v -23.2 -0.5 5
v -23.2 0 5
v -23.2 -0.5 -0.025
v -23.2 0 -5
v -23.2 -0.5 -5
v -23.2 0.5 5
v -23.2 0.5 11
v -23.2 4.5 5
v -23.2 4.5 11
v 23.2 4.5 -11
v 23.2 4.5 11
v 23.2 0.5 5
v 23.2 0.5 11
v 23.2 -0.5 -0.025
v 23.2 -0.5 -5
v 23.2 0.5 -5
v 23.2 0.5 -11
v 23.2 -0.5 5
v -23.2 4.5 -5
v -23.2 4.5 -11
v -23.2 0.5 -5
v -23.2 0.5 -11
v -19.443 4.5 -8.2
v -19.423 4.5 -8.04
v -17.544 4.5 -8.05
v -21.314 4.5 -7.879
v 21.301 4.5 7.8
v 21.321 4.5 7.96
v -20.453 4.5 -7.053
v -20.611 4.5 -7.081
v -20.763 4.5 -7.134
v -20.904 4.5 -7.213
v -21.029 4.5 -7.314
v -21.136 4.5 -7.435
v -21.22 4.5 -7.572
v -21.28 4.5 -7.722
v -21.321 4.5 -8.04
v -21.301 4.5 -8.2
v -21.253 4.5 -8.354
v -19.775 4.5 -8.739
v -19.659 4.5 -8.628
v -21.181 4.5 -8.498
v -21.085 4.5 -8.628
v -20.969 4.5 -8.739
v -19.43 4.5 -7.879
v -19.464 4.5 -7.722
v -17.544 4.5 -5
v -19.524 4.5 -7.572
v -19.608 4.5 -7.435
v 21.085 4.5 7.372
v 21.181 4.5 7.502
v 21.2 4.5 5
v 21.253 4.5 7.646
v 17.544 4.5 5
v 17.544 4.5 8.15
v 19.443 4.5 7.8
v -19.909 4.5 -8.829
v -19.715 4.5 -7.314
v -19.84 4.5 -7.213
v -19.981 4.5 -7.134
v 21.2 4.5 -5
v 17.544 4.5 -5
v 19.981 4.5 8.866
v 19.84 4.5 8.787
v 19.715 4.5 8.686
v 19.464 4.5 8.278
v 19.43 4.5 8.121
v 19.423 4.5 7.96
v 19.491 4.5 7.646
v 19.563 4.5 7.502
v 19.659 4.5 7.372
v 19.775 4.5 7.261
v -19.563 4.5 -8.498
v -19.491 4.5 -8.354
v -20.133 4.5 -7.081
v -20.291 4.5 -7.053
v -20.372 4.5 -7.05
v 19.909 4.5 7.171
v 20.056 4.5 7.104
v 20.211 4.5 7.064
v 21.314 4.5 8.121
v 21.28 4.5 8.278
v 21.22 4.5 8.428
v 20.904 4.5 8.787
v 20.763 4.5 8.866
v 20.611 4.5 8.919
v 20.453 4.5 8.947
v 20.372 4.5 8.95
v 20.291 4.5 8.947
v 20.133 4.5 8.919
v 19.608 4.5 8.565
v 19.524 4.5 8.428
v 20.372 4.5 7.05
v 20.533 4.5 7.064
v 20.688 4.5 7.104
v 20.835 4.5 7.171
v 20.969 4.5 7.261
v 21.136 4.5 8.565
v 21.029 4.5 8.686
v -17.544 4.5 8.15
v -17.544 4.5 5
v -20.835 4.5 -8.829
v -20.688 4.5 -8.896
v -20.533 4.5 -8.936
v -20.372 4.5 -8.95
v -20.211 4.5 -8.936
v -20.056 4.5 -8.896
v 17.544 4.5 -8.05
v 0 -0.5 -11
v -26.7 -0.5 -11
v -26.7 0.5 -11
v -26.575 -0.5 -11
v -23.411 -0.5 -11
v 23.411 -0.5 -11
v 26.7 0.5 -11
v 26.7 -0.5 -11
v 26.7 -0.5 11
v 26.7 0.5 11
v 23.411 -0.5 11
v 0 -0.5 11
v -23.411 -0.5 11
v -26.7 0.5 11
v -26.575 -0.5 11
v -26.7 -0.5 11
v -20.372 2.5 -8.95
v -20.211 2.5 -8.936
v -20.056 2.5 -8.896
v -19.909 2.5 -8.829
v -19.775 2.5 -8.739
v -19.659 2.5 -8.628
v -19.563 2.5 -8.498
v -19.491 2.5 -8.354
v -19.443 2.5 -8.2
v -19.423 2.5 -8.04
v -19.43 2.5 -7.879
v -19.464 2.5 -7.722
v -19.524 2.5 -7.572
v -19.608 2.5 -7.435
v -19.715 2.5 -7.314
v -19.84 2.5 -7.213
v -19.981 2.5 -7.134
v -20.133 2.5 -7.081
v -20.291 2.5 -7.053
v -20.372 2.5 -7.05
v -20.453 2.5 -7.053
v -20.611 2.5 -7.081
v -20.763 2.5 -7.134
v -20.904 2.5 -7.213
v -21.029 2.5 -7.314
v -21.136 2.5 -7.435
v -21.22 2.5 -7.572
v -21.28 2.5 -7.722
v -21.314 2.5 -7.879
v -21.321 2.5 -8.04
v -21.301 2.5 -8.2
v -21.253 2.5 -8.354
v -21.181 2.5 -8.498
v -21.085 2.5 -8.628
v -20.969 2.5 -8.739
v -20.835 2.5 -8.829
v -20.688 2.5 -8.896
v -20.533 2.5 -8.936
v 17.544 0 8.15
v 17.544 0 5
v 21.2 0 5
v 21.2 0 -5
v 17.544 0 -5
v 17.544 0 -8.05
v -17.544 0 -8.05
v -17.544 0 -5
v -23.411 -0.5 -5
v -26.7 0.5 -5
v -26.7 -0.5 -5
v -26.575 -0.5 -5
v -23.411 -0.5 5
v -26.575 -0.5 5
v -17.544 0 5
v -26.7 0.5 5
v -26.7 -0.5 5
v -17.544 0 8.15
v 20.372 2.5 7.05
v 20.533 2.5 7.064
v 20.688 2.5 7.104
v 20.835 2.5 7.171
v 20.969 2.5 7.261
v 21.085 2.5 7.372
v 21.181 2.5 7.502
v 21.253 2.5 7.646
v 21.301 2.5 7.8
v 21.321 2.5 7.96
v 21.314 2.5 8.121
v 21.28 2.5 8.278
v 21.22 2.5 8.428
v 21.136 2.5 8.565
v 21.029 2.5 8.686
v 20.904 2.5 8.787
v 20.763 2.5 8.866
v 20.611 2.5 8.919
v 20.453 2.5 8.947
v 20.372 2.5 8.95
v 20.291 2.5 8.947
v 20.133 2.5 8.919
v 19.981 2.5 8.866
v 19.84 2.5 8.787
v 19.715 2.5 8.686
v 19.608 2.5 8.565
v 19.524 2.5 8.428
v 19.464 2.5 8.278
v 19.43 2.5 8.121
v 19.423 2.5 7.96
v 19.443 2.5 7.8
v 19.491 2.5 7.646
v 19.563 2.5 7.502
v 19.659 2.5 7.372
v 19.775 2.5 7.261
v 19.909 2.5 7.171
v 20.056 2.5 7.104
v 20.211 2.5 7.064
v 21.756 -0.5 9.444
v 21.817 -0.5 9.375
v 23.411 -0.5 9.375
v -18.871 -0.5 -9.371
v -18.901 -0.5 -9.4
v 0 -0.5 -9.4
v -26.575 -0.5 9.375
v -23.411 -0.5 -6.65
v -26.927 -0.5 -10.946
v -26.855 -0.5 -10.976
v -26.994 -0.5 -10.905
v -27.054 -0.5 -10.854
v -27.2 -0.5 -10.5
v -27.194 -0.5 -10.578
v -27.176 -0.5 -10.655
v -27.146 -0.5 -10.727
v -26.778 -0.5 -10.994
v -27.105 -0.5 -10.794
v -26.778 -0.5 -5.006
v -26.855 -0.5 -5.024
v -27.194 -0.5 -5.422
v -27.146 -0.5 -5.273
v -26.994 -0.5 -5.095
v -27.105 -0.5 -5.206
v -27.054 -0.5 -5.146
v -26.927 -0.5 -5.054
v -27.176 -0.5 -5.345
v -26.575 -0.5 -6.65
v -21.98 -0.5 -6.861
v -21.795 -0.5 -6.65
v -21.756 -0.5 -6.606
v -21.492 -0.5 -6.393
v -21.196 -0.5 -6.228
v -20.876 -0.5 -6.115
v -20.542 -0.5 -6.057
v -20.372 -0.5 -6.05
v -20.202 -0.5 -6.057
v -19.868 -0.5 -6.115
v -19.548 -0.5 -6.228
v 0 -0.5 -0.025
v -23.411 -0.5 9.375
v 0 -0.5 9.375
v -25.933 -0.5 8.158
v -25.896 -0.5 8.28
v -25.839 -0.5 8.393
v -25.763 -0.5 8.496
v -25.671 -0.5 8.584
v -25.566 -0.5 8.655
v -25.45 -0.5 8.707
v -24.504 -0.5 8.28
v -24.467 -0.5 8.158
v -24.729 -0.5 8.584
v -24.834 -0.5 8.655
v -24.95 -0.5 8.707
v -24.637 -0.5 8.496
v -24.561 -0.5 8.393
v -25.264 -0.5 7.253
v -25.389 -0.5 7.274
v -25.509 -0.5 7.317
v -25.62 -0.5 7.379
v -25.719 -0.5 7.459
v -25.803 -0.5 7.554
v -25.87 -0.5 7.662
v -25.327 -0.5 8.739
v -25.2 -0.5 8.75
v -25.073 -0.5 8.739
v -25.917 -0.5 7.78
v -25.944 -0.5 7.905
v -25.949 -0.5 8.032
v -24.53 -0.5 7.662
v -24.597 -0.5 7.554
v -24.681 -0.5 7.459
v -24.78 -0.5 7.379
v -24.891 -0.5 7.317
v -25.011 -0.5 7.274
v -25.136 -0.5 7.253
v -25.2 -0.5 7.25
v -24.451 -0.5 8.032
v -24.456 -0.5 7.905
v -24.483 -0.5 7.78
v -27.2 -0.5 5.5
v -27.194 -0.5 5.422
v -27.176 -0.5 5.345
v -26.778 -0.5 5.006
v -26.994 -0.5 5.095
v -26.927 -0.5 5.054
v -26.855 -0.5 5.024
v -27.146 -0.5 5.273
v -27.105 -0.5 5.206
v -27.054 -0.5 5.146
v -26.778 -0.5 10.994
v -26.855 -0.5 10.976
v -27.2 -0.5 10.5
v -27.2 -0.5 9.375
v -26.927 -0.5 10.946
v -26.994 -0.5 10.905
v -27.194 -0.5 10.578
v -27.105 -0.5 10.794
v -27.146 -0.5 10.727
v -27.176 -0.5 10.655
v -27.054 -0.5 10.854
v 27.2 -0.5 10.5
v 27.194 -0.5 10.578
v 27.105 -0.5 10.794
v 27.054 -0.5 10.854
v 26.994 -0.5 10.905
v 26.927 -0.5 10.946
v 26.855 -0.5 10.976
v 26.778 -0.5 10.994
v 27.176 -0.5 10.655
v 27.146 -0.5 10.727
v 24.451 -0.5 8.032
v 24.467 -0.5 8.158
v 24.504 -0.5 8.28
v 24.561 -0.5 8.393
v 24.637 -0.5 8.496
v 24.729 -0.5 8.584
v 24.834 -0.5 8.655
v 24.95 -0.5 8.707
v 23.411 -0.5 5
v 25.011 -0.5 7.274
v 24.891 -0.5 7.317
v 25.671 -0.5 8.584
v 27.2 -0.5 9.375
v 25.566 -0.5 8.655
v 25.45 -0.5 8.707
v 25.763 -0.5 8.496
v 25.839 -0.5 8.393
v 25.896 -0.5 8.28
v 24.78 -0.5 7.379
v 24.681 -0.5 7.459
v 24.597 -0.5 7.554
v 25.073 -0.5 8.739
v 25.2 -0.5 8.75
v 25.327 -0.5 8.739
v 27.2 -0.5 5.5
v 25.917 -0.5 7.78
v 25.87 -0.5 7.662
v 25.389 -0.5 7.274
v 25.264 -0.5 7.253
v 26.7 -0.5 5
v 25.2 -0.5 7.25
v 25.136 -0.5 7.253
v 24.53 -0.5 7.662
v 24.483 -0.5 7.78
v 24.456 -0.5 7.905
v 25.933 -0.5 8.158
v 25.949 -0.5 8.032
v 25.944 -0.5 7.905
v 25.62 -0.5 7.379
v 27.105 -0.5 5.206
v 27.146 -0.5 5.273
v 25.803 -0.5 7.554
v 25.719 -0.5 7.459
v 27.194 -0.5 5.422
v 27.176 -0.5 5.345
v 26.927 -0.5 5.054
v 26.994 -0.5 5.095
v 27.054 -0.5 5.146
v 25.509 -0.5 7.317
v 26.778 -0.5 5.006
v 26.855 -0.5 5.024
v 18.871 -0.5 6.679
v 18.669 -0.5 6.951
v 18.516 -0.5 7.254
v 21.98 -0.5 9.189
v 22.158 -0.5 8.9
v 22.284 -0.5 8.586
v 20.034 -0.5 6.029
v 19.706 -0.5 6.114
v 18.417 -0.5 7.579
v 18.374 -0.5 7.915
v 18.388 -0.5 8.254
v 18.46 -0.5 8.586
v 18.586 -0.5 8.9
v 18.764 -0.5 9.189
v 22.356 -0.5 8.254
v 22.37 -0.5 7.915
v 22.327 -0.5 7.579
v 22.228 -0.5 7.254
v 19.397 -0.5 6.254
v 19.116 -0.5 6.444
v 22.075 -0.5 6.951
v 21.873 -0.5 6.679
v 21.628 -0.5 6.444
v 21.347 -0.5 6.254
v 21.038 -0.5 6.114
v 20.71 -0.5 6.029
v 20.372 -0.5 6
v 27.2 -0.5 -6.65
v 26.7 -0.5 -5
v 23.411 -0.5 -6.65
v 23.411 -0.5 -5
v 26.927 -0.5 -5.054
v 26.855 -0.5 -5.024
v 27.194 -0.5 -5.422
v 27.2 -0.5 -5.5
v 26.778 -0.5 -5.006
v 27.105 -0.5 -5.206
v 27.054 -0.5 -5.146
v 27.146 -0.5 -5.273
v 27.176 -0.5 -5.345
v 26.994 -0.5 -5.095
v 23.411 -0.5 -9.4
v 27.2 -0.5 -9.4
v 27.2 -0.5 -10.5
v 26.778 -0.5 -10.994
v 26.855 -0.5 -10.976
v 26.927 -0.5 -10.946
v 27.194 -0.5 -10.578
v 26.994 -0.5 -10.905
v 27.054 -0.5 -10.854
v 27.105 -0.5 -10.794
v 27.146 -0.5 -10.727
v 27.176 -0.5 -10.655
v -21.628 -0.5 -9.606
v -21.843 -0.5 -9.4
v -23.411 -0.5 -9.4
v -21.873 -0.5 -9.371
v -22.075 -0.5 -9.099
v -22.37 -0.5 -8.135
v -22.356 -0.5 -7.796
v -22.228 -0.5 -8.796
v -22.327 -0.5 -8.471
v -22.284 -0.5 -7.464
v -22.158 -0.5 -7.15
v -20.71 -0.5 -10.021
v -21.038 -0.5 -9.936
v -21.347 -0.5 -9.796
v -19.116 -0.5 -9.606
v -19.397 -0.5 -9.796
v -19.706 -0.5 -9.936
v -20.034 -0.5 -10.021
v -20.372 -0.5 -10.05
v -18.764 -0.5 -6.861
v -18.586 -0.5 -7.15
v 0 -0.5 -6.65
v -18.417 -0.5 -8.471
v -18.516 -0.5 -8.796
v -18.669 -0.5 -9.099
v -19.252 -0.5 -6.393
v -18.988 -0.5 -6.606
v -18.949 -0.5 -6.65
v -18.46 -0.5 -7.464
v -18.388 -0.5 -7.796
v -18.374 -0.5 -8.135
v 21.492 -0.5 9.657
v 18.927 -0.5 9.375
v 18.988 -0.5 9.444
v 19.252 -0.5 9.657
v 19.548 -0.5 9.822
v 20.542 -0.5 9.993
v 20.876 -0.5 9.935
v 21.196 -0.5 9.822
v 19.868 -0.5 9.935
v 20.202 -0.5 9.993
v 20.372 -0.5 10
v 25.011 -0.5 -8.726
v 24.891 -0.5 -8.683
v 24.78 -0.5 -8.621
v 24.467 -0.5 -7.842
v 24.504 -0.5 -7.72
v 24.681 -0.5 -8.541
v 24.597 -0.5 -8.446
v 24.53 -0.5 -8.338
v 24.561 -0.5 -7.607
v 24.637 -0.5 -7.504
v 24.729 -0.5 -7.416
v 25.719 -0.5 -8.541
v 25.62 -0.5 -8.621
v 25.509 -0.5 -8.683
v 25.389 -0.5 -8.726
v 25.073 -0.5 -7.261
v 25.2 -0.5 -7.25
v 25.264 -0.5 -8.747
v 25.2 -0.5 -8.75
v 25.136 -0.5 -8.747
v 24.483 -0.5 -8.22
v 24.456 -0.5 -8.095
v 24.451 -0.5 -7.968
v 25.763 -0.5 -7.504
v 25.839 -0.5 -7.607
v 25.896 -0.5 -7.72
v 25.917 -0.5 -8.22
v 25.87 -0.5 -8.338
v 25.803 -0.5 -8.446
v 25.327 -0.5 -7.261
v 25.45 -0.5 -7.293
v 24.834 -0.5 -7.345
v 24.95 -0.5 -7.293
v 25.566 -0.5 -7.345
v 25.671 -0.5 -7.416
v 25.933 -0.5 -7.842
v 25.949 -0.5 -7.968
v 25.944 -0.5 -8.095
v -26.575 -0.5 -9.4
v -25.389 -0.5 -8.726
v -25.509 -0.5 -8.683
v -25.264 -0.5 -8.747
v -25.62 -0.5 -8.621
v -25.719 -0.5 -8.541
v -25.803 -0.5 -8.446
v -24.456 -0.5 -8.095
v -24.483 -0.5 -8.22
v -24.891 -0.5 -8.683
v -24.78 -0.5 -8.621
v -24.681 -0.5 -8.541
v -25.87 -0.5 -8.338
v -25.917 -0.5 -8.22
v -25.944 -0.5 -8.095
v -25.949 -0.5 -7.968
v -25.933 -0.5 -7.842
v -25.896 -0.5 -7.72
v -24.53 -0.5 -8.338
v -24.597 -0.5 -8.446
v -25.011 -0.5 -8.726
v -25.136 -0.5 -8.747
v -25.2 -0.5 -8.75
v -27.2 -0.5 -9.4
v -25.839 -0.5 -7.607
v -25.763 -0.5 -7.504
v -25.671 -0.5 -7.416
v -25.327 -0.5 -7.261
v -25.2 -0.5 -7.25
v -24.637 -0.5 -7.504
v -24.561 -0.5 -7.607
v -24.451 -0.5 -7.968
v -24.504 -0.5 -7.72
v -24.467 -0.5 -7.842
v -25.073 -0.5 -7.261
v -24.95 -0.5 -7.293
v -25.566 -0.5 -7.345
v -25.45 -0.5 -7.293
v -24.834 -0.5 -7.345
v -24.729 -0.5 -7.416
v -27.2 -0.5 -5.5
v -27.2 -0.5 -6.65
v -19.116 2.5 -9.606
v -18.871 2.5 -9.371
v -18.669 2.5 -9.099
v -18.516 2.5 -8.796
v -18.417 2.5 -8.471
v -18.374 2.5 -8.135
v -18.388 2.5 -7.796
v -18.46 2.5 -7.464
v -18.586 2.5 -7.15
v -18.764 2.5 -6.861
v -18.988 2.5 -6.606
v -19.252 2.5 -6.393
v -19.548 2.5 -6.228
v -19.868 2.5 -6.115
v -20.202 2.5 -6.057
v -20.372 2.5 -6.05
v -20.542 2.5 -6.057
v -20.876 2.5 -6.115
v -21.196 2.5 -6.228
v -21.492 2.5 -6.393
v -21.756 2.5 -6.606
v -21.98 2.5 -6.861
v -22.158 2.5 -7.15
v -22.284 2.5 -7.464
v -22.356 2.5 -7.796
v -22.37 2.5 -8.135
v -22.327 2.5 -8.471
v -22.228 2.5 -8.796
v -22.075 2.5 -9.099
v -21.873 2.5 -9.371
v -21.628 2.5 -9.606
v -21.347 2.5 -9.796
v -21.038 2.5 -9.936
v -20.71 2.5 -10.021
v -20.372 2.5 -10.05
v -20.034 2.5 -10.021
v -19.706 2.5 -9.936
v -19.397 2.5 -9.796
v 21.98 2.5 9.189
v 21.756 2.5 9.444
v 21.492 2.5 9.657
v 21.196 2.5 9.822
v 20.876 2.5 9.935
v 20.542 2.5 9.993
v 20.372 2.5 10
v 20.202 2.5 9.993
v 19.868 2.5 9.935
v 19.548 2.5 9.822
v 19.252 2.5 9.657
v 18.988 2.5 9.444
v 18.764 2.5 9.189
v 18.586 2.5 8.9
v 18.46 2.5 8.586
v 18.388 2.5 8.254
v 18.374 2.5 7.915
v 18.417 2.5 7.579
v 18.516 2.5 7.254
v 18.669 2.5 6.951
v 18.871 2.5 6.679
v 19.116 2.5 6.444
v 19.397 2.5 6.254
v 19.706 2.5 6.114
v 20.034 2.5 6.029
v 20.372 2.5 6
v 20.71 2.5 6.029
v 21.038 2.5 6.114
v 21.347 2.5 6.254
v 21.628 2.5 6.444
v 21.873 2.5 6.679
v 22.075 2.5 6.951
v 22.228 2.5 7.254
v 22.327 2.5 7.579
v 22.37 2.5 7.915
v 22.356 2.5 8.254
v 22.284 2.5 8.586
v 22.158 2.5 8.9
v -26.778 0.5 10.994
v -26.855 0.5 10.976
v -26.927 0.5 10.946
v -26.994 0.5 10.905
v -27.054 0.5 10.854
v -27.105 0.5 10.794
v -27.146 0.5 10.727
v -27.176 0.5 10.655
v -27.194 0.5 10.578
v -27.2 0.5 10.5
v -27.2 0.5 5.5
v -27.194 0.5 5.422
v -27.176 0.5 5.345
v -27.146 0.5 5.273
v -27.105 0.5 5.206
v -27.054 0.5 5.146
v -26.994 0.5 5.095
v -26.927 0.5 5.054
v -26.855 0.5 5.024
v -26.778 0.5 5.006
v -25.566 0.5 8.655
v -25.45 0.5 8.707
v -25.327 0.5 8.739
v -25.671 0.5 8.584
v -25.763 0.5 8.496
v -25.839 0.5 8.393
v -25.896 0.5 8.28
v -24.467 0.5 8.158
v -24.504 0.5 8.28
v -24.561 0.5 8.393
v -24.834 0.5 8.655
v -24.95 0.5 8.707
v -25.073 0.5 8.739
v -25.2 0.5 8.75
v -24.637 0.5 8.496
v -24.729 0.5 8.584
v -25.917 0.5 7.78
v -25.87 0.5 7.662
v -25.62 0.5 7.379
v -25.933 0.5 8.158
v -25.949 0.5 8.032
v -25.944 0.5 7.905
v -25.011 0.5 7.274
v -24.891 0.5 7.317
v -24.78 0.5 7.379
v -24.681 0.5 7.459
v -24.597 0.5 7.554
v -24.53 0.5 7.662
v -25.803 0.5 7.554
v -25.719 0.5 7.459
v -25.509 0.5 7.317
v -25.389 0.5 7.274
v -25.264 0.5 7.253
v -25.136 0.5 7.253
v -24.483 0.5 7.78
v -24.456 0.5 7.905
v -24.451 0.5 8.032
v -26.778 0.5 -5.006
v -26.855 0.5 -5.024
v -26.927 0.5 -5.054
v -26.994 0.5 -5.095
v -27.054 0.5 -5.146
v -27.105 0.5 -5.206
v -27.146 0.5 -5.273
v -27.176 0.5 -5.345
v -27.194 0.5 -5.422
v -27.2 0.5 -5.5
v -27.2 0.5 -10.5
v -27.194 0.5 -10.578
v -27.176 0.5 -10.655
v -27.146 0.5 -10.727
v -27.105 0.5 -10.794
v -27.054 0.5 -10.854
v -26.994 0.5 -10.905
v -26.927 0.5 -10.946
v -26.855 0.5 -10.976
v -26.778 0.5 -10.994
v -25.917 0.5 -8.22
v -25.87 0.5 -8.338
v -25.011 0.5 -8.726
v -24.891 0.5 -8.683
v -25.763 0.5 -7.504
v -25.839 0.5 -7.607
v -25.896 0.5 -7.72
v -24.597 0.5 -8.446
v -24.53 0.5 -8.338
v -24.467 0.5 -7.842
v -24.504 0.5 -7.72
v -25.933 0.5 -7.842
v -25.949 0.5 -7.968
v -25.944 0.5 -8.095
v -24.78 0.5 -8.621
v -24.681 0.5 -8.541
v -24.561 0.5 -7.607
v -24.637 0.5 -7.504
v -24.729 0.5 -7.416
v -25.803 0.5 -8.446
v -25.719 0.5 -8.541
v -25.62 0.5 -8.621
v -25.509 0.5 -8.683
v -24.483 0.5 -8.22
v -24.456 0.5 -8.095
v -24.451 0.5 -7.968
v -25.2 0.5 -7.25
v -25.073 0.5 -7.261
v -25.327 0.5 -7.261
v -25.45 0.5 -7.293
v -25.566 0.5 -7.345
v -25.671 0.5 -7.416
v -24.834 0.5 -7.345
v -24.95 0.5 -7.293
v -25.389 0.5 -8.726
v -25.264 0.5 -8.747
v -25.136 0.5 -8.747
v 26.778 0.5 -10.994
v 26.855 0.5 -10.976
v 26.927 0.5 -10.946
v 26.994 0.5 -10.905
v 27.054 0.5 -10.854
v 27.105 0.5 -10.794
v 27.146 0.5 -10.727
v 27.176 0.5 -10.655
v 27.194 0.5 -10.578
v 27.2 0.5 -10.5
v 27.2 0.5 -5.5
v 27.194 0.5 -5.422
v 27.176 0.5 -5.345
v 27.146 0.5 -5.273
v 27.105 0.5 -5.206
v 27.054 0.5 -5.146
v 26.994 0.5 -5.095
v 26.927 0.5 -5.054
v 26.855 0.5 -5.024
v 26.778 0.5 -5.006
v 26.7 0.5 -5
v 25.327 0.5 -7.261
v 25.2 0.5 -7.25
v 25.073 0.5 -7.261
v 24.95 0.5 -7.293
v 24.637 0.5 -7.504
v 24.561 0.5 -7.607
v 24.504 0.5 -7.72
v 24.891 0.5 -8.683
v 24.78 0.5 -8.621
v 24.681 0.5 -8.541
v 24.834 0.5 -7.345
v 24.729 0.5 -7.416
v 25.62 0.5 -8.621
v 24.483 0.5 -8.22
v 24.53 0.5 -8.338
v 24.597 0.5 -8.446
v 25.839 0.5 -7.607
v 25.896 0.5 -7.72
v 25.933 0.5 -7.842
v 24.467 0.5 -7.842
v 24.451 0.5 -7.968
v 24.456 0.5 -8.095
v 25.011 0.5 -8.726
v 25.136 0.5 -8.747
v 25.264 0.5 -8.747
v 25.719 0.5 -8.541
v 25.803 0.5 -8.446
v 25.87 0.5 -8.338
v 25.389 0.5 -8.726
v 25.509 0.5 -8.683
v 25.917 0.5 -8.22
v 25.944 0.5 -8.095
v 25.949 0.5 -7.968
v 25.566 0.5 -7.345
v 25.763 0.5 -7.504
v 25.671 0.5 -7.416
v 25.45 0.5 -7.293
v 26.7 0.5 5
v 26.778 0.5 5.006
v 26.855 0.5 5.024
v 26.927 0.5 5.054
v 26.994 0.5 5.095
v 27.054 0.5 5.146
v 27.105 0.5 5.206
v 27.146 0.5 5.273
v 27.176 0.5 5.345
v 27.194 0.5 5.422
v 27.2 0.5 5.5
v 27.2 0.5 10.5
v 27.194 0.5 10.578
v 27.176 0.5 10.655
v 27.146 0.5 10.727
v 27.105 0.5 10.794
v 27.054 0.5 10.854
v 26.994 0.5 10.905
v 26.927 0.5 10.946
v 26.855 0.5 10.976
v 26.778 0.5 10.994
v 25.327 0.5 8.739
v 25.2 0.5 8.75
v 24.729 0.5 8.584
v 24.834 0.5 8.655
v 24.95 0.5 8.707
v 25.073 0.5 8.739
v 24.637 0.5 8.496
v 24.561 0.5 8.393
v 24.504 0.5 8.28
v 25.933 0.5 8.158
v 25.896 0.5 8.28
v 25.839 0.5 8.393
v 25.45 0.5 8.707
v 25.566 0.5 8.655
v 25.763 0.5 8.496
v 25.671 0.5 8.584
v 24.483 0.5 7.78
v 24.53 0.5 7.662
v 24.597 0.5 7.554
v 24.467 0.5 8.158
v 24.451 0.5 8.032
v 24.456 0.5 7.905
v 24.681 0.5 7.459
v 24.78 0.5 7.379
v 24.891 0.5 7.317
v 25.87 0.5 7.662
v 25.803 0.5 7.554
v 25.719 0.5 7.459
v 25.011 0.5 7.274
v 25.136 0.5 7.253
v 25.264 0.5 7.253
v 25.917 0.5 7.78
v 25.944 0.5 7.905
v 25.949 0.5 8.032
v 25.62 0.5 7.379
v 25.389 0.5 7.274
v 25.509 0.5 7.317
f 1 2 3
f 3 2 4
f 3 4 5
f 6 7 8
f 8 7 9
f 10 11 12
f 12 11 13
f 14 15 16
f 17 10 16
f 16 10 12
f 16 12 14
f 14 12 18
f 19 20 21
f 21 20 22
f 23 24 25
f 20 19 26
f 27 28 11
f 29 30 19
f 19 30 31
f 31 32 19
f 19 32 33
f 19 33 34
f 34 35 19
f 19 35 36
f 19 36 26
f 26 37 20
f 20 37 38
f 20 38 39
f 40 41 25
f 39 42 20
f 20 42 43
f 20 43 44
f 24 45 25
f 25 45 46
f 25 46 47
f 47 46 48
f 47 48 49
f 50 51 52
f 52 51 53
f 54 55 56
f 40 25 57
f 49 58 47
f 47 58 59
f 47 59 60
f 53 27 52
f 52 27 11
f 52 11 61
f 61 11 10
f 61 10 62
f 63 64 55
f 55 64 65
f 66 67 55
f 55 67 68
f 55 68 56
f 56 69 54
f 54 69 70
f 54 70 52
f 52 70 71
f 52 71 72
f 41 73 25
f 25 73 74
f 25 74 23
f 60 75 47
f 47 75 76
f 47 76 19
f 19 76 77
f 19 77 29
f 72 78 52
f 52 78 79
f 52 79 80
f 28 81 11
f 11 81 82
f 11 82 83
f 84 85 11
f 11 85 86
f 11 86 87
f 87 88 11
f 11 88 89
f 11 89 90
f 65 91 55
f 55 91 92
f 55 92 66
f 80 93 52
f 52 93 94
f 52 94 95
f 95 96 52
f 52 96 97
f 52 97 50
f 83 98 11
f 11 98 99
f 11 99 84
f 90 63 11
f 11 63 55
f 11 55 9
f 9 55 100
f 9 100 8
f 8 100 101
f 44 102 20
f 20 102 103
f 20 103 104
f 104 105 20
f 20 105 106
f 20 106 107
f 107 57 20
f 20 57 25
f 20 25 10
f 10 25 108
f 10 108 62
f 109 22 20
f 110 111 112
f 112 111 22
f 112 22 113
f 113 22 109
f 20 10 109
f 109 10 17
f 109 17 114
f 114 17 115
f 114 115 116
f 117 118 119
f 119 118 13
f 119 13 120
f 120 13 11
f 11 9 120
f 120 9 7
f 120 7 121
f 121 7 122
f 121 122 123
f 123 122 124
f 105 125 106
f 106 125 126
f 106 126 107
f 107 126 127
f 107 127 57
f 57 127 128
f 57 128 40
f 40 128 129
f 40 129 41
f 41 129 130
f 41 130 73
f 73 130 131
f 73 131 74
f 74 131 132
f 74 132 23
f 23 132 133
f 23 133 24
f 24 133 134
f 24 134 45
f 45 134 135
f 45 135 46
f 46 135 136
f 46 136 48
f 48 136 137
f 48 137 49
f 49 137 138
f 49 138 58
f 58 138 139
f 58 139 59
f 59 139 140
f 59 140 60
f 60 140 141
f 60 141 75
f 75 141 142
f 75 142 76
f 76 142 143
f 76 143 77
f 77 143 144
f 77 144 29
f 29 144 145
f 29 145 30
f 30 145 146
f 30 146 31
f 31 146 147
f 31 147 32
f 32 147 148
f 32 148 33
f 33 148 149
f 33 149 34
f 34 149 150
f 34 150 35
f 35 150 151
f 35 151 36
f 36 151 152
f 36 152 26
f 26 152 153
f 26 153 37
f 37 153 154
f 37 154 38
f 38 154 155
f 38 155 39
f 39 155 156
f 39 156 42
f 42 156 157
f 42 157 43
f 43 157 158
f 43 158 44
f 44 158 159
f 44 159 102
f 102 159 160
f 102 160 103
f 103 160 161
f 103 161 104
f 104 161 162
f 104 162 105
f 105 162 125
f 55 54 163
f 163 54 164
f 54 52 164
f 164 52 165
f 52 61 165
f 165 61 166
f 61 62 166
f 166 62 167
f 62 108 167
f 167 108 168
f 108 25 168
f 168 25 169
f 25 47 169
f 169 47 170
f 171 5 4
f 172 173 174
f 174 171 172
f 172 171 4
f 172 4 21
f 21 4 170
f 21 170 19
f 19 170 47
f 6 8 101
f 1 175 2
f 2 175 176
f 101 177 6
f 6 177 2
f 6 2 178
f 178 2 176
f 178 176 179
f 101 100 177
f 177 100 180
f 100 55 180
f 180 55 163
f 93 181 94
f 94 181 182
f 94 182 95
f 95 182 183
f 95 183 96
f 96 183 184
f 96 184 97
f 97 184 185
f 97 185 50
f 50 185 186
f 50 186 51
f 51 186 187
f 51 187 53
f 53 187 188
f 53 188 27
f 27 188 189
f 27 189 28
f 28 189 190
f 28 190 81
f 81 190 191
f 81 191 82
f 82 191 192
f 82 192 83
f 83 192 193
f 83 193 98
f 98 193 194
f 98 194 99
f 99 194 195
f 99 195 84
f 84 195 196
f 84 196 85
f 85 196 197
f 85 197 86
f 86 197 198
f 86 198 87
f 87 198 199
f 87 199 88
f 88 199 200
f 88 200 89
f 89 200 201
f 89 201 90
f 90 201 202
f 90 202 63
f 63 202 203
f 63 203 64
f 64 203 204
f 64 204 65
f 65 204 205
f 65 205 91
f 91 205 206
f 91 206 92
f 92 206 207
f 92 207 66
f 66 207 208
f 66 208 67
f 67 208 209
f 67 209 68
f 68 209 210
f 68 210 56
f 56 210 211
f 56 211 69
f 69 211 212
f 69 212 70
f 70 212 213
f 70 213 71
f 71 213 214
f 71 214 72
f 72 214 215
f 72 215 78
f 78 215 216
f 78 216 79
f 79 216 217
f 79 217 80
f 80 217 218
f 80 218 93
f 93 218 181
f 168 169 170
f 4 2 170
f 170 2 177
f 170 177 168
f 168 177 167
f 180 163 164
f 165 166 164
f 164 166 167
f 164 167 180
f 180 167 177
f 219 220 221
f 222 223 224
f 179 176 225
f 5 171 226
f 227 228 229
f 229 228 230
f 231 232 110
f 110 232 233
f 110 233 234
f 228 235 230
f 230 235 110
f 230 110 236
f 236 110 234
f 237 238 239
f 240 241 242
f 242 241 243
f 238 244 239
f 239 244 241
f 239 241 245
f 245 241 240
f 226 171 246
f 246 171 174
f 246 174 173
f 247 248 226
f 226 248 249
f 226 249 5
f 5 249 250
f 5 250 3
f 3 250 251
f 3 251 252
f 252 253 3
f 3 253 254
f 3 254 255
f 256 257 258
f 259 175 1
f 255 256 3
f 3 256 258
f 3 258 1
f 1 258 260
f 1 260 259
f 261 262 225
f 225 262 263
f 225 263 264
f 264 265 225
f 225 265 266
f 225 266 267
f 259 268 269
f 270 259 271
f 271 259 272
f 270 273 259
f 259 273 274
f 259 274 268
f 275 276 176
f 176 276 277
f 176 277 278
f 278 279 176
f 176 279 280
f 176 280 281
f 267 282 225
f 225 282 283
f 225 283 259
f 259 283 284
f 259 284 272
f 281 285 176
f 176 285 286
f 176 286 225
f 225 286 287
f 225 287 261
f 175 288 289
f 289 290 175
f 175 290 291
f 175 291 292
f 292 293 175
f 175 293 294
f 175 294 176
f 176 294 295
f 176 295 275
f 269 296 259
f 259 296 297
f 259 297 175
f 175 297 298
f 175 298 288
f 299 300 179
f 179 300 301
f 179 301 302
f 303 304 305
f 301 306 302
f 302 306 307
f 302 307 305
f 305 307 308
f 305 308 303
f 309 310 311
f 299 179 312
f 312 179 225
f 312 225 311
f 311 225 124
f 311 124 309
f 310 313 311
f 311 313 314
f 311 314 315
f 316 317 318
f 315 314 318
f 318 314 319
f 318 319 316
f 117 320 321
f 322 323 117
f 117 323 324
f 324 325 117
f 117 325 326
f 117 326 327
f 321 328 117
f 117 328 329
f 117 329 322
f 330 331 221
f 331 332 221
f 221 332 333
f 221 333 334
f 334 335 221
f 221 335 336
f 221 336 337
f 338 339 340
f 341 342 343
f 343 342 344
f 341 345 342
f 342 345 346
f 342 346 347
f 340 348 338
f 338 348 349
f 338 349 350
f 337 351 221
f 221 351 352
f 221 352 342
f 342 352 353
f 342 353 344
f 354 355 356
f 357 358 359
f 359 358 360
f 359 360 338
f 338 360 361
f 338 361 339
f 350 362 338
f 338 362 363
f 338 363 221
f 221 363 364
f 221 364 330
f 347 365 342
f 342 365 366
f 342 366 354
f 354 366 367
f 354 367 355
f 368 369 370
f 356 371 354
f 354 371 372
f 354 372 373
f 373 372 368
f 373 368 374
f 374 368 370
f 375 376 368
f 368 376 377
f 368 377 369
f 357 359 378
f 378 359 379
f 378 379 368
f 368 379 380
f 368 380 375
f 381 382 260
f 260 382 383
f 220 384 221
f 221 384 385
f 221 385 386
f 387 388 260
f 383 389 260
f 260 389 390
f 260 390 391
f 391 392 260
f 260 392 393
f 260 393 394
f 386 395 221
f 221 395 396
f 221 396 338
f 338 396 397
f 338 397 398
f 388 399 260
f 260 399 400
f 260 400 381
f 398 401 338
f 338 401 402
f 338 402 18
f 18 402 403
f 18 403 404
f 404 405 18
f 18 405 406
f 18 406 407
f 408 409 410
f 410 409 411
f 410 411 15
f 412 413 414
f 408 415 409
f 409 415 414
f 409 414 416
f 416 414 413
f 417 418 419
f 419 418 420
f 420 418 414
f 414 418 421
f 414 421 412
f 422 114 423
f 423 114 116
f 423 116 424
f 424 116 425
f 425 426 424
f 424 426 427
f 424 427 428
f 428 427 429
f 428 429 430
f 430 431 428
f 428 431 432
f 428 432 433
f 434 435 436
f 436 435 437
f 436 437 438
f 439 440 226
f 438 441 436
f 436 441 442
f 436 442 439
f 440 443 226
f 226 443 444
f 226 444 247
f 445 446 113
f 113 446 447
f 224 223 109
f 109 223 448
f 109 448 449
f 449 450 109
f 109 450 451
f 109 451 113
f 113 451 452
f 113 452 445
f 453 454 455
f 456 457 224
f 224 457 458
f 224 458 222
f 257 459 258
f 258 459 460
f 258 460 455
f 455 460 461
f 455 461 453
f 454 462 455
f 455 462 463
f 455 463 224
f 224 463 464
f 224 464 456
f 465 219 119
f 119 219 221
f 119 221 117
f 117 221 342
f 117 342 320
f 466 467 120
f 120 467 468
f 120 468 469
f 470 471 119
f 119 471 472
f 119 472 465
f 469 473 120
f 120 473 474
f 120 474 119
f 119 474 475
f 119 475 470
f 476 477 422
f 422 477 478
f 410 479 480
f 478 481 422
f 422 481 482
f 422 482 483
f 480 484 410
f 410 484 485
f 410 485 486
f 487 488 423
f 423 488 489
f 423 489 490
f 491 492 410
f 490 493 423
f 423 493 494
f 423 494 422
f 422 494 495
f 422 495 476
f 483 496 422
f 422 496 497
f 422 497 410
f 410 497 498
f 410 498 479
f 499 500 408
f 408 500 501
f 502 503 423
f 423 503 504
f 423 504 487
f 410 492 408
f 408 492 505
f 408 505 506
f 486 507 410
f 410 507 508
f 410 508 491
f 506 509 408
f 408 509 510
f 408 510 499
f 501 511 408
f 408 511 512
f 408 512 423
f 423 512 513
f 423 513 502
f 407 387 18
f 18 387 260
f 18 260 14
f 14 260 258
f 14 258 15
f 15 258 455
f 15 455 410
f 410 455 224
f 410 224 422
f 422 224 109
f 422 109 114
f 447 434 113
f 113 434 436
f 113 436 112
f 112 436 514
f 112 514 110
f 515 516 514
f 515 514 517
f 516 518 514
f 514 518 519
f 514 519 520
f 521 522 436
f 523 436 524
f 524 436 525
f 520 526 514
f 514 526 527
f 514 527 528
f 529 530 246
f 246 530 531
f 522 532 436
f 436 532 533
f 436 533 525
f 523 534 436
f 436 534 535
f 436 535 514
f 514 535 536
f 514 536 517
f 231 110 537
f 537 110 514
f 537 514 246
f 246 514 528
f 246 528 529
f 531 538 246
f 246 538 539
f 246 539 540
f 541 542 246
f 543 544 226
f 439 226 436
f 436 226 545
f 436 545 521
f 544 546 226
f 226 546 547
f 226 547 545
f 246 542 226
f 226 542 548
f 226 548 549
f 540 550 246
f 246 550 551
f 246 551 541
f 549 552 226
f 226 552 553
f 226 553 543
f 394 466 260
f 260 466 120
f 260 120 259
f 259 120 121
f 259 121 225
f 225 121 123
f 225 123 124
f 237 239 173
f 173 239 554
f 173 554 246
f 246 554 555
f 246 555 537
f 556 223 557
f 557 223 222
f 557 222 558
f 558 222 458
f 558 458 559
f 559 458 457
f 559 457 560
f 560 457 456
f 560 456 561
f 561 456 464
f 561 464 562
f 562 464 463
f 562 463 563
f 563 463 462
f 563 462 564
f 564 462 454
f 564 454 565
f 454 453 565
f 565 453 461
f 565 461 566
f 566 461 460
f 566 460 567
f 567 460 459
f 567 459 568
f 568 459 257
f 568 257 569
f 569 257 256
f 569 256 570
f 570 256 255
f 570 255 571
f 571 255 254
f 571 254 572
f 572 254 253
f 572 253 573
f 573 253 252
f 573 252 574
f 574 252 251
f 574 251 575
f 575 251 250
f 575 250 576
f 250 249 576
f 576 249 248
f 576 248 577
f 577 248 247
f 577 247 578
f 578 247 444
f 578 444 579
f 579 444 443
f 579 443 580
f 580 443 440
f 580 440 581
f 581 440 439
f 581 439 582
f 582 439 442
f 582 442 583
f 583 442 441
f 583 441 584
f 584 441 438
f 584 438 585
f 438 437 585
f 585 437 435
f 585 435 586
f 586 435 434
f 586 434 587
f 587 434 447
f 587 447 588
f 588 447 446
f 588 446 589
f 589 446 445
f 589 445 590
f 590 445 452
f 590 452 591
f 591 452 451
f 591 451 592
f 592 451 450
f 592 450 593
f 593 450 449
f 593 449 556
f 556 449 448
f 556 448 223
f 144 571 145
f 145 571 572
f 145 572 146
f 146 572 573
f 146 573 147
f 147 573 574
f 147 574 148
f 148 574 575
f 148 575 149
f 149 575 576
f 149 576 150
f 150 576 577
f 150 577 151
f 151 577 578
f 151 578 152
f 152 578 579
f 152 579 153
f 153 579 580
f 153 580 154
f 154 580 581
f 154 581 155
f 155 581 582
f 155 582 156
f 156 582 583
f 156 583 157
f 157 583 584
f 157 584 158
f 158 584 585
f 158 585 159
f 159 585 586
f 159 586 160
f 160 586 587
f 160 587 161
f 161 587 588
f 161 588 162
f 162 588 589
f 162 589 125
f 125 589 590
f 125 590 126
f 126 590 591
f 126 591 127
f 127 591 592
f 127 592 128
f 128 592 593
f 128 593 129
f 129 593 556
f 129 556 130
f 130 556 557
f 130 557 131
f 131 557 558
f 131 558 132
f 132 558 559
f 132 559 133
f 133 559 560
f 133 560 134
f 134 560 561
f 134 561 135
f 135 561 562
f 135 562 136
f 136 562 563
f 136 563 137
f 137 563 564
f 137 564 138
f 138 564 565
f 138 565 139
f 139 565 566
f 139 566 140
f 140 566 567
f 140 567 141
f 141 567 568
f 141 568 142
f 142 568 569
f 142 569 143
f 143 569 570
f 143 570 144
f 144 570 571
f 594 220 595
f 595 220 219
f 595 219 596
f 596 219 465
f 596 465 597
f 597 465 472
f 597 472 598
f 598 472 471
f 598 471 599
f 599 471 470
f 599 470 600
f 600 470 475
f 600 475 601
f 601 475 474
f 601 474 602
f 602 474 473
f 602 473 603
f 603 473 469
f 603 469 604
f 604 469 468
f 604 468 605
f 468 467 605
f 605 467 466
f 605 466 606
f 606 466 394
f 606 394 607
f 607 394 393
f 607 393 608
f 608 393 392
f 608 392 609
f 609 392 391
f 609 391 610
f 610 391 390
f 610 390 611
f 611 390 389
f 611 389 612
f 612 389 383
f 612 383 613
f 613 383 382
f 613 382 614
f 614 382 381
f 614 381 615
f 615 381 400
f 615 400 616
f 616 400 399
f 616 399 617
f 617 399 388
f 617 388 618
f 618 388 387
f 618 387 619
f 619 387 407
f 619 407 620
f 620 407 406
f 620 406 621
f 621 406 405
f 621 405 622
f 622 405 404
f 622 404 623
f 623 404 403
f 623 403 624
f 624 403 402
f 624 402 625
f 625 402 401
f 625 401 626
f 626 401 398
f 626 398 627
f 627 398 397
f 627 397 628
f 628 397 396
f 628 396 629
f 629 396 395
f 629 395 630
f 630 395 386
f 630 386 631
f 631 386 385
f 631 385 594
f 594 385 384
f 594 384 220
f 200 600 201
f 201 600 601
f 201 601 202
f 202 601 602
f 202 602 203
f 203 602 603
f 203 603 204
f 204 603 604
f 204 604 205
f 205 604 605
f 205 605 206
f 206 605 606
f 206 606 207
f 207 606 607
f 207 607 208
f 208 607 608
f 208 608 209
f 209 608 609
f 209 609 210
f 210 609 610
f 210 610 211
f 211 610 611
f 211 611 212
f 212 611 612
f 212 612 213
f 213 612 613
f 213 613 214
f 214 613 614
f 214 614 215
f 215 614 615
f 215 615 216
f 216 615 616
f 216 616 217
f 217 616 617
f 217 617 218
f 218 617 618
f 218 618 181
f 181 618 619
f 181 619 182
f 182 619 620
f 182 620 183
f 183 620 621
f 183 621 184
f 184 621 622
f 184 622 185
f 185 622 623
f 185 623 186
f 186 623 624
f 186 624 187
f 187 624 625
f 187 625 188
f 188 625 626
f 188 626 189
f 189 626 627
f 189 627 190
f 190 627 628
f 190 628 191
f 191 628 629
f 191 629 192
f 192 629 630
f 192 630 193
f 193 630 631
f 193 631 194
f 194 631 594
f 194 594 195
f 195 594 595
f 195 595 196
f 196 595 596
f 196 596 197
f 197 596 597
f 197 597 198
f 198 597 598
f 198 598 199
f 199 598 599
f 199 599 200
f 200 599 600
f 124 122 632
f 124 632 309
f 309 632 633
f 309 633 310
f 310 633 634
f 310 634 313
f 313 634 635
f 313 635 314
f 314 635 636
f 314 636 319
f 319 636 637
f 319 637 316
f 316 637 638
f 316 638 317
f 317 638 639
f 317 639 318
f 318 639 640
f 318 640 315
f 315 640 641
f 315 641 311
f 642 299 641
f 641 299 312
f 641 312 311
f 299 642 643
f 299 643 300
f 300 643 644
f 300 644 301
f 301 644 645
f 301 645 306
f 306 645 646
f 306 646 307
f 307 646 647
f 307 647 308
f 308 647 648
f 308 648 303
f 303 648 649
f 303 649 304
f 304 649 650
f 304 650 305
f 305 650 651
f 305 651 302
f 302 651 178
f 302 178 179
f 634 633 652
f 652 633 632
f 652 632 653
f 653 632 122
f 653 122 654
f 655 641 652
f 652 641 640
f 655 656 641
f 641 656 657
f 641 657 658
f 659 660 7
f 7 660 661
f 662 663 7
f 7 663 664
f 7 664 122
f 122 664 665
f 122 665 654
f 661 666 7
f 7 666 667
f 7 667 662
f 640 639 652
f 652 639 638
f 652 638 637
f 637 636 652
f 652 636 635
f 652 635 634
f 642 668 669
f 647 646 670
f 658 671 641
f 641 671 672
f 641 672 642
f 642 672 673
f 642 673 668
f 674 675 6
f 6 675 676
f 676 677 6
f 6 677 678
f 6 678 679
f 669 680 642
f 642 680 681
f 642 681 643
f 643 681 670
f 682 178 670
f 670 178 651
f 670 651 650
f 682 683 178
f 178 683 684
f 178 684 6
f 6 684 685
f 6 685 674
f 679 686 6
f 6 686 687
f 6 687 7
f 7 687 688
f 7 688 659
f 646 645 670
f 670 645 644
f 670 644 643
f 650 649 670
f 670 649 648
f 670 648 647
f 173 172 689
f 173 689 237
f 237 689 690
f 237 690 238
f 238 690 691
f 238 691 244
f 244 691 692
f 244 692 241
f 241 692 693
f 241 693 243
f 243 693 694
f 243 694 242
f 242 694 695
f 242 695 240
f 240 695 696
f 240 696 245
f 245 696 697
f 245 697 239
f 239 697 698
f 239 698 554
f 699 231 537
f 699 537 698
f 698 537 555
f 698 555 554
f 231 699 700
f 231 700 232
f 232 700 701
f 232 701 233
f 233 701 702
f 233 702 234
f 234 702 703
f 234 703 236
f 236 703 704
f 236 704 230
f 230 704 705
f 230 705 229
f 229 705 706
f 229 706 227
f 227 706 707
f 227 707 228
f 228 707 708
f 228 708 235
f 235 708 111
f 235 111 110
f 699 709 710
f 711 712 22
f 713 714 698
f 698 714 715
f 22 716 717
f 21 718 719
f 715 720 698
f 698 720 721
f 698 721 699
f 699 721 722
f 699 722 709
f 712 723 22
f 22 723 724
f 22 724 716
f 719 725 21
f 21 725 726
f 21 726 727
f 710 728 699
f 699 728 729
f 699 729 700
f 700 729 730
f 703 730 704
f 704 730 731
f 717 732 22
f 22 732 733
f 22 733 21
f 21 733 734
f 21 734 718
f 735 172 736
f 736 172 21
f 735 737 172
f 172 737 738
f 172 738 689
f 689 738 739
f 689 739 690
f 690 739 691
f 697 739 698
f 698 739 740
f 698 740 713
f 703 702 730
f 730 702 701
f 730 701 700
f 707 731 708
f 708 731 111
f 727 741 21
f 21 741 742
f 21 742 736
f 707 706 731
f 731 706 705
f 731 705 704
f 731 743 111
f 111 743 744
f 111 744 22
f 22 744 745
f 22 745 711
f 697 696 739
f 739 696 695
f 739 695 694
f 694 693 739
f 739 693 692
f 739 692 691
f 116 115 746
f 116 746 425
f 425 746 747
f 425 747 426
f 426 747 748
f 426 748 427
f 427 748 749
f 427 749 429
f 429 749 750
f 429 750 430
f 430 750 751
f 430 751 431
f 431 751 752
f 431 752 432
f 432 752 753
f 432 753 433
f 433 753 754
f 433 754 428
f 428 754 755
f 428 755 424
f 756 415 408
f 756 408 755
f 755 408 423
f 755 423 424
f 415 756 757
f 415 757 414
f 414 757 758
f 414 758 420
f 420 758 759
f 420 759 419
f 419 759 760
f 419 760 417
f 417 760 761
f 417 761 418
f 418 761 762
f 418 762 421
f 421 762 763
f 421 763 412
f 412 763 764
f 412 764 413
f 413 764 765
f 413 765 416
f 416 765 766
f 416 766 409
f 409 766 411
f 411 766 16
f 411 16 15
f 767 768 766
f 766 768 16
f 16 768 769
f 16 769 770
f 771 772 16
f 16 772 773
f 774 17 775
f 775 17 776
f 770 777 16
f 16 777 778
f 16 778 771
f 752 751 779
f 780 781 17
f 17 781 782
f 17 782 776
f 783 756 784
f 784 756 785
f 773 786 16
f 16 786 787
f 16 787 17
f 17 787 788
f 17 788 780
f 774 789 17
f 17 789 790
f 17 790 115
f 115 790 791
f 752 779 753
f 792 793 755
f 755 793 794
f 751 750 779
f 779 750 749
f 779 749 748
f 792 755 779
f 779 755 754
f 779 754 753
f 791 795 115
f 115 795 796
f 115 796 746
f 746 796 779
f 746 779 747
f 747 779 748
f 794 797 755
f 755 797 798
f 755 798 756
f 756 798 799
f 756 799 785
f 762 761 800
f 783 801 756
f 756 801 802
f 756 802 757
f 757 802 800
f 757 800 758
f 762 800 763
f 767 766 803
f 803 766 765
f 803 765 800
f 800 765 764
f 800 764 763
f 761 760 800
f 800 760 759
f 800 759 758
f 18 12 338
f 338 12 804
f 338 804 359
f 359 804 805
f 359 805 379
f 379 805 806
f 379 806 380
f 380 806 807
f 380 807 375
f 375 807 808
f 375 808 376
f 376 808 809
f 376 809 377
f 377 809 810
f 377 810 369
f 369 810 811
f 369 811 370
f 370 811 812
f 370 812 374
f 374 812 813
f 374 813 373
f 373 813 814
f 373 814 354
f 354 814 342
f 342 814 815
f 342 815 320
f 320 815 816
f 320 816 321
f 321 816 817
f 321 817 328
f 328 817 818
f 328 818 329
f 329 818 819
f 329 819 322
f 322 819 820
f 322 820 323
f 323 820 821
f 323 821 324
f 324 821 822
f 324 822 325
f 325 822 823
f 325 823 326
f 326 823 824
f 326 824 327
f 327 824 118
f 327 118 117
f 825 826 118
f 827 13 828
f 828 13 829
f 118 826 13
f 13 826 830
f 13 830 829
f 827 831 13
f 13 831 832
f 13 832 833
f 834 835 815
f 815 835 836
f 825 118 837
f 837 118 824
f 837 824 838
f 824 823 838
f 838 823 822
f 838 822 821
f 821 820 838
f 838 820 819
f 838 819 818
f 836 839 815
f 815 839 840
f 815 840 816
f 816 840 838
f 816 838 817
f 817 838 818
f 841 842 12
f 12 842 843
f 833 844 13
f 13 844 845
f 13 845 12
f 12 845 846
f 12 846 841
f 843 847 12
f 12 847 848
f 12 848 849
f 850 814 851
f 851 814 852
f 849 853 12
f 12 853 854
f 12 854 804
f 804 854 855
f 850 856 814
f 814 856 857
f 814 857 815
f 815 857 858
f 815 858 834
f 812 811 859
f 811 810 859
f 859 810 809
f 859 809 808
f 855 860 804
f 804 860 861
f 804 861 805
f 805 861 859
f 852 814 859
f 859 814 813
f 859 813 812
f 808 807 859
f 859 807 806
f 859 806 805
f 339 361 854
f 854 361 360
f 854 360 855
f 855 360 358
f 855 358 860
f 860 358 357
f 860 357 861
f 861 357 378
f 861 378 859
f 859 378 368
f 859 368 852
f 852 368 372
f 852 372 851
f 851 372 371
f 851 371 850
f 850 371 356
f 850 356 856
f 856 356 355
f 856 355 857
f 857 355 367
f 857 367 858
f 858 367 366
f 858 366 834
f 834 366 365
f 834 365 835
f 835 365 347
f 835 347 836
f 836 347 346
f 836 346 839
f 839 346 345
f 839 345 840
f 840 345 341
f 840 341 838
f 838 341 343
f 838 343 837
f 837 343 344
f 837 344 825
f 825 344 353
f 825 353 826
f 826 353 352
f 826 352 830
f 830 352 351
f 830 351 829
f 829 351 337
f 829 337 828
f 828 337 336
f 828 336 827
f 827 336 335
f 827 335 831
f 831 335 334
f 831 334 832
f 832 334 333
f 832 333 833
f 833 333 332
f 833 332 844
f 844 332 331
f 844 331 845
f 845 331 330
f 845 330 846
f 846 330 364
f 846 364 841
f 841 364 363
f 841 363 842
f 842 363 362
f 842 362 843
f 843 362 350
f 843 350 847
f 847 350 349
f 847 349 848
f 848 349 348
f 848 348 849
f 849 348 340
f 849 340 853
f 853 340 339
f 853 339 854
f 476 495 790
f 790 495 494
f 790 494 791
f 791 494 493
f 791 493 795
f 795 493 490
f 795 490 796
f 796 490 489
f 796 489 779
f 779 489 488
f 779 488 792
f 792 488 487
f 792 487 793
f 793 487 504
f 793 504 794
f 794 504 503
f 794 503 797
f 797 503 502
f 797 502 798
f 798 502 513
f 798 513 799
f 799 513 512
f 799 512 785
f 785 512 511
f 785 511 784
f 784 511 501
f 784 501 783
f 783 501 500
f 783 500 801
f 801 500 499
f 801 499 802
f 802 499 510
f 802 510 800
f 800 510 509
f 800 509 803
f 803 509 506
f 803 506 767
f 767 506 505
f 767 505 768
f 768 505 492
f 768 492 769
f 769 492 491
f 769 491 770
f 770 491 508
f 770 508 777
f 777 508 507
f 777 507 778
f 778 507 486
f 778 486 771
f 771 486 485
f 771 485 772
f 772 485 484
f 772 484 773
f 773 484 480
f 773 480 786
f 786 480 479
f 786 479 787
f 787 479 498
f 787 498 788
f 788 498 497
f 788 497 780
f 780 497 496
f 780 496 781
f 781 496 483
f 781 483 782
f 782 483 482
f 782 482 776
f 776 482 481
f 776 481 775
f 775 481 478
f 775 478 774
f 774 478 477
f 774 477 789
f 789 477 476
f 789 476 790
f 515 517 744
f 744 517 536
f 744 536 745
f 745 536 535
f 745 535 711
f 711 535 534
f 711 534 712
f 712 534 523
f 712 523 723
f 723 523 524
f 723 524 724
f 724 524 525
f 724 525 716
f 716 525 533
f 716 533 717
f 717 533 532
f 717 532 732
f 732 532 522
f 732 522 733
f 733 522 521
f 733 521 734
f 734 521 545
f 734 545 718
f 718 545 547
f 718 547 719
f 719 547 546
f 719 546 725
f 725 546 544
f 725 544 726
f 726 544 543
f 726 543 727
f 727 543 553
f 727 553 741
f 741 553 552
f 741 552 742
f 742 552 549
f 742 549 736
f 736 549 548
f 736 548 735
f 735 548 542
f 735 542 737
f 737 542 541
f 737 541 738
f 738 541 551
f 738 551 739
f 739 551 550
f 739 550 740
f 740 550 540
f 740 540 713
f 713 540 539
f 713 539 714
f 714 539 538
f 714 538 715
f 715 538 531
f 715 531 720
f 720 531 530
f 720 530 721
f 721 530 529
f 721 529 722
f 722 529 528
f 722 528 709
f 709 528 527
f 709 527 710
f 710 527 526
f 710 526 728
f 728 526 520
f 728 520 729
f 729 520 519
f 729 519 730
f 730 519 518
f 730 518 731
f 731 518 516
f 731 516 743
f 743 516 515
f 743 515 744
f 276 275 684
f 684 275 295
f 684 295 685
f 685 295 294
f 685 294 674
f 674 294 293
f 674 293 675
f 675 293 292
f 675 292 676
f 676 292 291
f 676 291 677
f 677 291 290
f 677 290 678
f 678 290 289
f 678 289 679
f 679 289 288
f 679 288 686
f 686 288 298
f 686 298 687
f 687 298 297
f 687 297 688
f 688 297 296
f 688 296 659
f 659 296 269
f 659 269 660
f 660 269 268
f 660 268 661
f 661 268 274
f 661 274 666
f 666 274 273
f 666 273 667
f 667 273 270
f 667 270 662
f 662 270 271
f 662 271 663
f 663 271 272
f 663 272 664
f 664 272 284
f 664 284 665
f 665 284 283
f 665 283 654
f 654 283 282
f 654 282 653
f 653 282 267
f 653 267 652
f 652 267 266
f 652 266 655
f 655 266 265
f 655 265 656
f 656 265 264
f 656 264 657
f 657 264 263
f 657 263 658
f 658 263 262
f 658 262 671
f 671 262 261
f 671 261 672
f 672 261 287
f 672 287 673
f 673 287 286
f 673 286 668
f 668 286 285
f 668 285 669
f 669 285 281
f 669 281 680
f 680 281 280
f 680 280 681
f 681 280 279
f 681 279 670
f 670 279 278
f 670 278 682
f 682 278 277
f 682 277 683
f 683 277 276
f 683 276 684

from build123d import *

# Parameters (mm, degrees)
ESBO_O1_W                = 46.4
ESBO_O1_H                = 22
ESBO_O1_R                = 0.95
RESSALTO_EXTRUS_O1_DEPTH = 4.5
ESBO_O2_W                = 46.4
ESBO_O2_H                = 22
RESSALTO_EXTRUS_O2_DEPTH = 0.5
ESBO_O4_R                = 1.05
CORTE_EXTRUS_O2_DEPTH    = 10.5
ESBO_O8_R                = 2
CORTE_EXTRUS_O3_DEPTH    = 3
RESSALTO_EXTRUS_O3_DEPTH = 0.5
ESBO_O11_R               = 0.75
CORTE_EXTRUS_O5_DEPTH    = 10
ESBO_O12_W               = 40.744
ESBO_O12_H               = 10
CORTE_EXTRUS_O6_DEPTH    = 4.5


with BuildPart() as part:
    # Esboço1 → Ressalto-extrusão1 (new body)
    with BuildSketch(Plane(origin=(0, 0, 0), x_dir=(1, 0, 0), z_dir=(0, 1, 0))):
        Rectangle(ESBO_O1_W, ESBO_O1_H)
        with Locations(Location((20.372, -8, 0), (0, 0, 270))):
            Circle(ESBO_O1_R, mode=Mode.SUBTRACT)
        with Locations(Location((-20.372, 8, 0), (0, 0, 270))):
            Circle(ESBO_O1_R, mode=Mode.SUBTRACT)
        Polygon((-21.2, 5), (-17.544, 5), (-17.544, 8.05), (17.544, 8.05), (17.544, 5), (21.2, 5), (21.2, -5), (17.544, -5), (17.544, -8.15), (-17.544, -8.15), (-17.544, -5), (-21.2, -5), align=None, mode=Mode.SUBTRACT)
    extrude(amount=RESSALTO_EXTRUS_O1_DEPTH)

    # Esboço2 → Ressalto-extrusão2 (add)
    with BuildSketch(Plane.XZ):
        Rectangle(ESBO_O2_W, ESBO_O2_H)
    extrude(amount=RESSALTO_EXTRUS_O2_DEPTH)

    # Esboço4 → Corte-extrusão2 (cut)
    with BuildSketch(Plane(origin=(0, 0, 0), x_dir=(1, 0, 0), z_dir=(0, 1, 0))):
        with Locations(Location((20.372, -8, 0), (0, 0, 270))):
            Circle(ESBO_O4_R)
        with Locations(Location((-20.372, 8, 0), (0, 0, 270))):
            Circle(ESBO_O4_R)
    extrude(amount=-CORTE_EXTRUS_O2_DEPTH, mode=Mode.SUBTRACT)

    # Esboço8 → Corte-extrusão3 (cut)
    with BuildSketch(Plane(origin=(0, -0.5, 0), x_dir=(1, 0, 0), z_dir=(0, 1, 0))):
        with Locations(Location((20.372, -8, 0), (0, 0, 270))):
            Circle(ESBO_O8_R)
        with Locations(Location((-20.372, 8.05, 0), (0, 0, 270))):
            Circle(ESBO_O8_R)
    extrude(amount=CORTE_EXTRUS_O3_DEPTH, mode=Mode.SUBTRACT)

    # Esboço10 → Ressalto-extrusão3 (add, symmetric)
    with BuildSketch(Plane(origin=(0, 0, 0), x_dir=(1, 0, 0), z_dir=(0, 1, 0))):
        with BuildLine():
            Line((-23.2, 11), (-26.7, 11))
            ThreePointArc((-26.7, 11), (-27.053553391, 10.853553391), (-27.2, 10.5))
            Line((-27.2, 10.5), (-27.2, 5.5))
            ThreePointArc((-27.2, 5.5), (-27.053553391, 5.146446609), (-26.7, 5))
            Line((-26.7, 5), (-23.2, 5))
            Line((-23.2, 5), (-23.2, 11))
        make_face()
        with BuildLine():
            Line((-23.2, -11), (-26.7, -11))
            ThreePointArc((-26.7, -11), (-27.053553391, -10.853553391), (-27.2, -10.5))
            Line((-27.2, -10.5), (-27.2, -5.5))
            ThreePointArc((-27.2, -5.5), (-27.053553391, -5.146446609), (-26.7, -5))
            Line((-26.7, -5), (-23.2, -5))
            Line((-23.2, -5), (-23.2, -11))
        make_face()
        with BuildLine():
            Line((23.2, 11), (26.7, 11))
            ThreePointArc((26.7, 11), (27.053553391, 10.853553391), (27.2, 10.5))
            Line((27.2, 10.5), (27.2, 5.5))
            ThreePointArc((27.2, 5.5), (27.053553391, 5.146446609), (26.7, 5))
            Line((26.7, 5), (23.2, 5))
            Line((23.2, 5), (23.2, 11))
        make_face()
        with BuildLine():
            Line((23.2, -11), (26.7, -11))
            ThreePointArc((26.7, -11), (27.053553391, -10.853553391), (27.2, -10.5))
            Line((27.2, -10.5), (27.2, -5.5))
            ThreePointArc((27.2, -5.5), (27.053553391, -5.146446609), (26.7, -5))
            Line((26.7, -5), (23.2, -5))
            Line((23.2, -5), (23.2, -11))
        make_face()
    extrude(amount=RESSALTO_EXTRUS_O3_DEPTH, both=True)

    # Esboço11 → Corte-extrusão5 (cut)
    with BuildSketch(Plane(origin=(0, 0.5, 0), x_dir=(1, 0, 0), z_dir=(0, 1, 0))):
        with Locations(Location((-25.2, 8, 0), (0, 0, 270))):
            Circle(ESBO_O11_R)
        with Locations(Location((-25.2, -8, 0), (0, 0, 270))):
            Circle(ESBO_O11_R)
        with Locations(Location((25.2, -8, 0), (0, 0, 270))):
            Circle(ESBO_O11_R)
        with Locations(Location((25.2, 8, 0), (0, 0, 270))):
            Circle(ESBO_O11_R)
    extrude(amount=-CORTE_EXTRUS_O5_DEPTH, mode=Mode.SUBTRACT)

    # Esboço12 → Corte-extrusão6 (cut)
    with BuildSketch(Plane(origin=(0, 4.5, 0), x_dir=(1, 0, 0), z_dir=(0, 1, 0))):
        with Locations((-2.828, 0)):
            Rectangle(ESBO_O12_W, ESBO_O12_H)
    extrude(amount=-CORTE_EXTRUS_O6_DEPTH, mode=Mode.SUBTRACT)


solid = part.part
